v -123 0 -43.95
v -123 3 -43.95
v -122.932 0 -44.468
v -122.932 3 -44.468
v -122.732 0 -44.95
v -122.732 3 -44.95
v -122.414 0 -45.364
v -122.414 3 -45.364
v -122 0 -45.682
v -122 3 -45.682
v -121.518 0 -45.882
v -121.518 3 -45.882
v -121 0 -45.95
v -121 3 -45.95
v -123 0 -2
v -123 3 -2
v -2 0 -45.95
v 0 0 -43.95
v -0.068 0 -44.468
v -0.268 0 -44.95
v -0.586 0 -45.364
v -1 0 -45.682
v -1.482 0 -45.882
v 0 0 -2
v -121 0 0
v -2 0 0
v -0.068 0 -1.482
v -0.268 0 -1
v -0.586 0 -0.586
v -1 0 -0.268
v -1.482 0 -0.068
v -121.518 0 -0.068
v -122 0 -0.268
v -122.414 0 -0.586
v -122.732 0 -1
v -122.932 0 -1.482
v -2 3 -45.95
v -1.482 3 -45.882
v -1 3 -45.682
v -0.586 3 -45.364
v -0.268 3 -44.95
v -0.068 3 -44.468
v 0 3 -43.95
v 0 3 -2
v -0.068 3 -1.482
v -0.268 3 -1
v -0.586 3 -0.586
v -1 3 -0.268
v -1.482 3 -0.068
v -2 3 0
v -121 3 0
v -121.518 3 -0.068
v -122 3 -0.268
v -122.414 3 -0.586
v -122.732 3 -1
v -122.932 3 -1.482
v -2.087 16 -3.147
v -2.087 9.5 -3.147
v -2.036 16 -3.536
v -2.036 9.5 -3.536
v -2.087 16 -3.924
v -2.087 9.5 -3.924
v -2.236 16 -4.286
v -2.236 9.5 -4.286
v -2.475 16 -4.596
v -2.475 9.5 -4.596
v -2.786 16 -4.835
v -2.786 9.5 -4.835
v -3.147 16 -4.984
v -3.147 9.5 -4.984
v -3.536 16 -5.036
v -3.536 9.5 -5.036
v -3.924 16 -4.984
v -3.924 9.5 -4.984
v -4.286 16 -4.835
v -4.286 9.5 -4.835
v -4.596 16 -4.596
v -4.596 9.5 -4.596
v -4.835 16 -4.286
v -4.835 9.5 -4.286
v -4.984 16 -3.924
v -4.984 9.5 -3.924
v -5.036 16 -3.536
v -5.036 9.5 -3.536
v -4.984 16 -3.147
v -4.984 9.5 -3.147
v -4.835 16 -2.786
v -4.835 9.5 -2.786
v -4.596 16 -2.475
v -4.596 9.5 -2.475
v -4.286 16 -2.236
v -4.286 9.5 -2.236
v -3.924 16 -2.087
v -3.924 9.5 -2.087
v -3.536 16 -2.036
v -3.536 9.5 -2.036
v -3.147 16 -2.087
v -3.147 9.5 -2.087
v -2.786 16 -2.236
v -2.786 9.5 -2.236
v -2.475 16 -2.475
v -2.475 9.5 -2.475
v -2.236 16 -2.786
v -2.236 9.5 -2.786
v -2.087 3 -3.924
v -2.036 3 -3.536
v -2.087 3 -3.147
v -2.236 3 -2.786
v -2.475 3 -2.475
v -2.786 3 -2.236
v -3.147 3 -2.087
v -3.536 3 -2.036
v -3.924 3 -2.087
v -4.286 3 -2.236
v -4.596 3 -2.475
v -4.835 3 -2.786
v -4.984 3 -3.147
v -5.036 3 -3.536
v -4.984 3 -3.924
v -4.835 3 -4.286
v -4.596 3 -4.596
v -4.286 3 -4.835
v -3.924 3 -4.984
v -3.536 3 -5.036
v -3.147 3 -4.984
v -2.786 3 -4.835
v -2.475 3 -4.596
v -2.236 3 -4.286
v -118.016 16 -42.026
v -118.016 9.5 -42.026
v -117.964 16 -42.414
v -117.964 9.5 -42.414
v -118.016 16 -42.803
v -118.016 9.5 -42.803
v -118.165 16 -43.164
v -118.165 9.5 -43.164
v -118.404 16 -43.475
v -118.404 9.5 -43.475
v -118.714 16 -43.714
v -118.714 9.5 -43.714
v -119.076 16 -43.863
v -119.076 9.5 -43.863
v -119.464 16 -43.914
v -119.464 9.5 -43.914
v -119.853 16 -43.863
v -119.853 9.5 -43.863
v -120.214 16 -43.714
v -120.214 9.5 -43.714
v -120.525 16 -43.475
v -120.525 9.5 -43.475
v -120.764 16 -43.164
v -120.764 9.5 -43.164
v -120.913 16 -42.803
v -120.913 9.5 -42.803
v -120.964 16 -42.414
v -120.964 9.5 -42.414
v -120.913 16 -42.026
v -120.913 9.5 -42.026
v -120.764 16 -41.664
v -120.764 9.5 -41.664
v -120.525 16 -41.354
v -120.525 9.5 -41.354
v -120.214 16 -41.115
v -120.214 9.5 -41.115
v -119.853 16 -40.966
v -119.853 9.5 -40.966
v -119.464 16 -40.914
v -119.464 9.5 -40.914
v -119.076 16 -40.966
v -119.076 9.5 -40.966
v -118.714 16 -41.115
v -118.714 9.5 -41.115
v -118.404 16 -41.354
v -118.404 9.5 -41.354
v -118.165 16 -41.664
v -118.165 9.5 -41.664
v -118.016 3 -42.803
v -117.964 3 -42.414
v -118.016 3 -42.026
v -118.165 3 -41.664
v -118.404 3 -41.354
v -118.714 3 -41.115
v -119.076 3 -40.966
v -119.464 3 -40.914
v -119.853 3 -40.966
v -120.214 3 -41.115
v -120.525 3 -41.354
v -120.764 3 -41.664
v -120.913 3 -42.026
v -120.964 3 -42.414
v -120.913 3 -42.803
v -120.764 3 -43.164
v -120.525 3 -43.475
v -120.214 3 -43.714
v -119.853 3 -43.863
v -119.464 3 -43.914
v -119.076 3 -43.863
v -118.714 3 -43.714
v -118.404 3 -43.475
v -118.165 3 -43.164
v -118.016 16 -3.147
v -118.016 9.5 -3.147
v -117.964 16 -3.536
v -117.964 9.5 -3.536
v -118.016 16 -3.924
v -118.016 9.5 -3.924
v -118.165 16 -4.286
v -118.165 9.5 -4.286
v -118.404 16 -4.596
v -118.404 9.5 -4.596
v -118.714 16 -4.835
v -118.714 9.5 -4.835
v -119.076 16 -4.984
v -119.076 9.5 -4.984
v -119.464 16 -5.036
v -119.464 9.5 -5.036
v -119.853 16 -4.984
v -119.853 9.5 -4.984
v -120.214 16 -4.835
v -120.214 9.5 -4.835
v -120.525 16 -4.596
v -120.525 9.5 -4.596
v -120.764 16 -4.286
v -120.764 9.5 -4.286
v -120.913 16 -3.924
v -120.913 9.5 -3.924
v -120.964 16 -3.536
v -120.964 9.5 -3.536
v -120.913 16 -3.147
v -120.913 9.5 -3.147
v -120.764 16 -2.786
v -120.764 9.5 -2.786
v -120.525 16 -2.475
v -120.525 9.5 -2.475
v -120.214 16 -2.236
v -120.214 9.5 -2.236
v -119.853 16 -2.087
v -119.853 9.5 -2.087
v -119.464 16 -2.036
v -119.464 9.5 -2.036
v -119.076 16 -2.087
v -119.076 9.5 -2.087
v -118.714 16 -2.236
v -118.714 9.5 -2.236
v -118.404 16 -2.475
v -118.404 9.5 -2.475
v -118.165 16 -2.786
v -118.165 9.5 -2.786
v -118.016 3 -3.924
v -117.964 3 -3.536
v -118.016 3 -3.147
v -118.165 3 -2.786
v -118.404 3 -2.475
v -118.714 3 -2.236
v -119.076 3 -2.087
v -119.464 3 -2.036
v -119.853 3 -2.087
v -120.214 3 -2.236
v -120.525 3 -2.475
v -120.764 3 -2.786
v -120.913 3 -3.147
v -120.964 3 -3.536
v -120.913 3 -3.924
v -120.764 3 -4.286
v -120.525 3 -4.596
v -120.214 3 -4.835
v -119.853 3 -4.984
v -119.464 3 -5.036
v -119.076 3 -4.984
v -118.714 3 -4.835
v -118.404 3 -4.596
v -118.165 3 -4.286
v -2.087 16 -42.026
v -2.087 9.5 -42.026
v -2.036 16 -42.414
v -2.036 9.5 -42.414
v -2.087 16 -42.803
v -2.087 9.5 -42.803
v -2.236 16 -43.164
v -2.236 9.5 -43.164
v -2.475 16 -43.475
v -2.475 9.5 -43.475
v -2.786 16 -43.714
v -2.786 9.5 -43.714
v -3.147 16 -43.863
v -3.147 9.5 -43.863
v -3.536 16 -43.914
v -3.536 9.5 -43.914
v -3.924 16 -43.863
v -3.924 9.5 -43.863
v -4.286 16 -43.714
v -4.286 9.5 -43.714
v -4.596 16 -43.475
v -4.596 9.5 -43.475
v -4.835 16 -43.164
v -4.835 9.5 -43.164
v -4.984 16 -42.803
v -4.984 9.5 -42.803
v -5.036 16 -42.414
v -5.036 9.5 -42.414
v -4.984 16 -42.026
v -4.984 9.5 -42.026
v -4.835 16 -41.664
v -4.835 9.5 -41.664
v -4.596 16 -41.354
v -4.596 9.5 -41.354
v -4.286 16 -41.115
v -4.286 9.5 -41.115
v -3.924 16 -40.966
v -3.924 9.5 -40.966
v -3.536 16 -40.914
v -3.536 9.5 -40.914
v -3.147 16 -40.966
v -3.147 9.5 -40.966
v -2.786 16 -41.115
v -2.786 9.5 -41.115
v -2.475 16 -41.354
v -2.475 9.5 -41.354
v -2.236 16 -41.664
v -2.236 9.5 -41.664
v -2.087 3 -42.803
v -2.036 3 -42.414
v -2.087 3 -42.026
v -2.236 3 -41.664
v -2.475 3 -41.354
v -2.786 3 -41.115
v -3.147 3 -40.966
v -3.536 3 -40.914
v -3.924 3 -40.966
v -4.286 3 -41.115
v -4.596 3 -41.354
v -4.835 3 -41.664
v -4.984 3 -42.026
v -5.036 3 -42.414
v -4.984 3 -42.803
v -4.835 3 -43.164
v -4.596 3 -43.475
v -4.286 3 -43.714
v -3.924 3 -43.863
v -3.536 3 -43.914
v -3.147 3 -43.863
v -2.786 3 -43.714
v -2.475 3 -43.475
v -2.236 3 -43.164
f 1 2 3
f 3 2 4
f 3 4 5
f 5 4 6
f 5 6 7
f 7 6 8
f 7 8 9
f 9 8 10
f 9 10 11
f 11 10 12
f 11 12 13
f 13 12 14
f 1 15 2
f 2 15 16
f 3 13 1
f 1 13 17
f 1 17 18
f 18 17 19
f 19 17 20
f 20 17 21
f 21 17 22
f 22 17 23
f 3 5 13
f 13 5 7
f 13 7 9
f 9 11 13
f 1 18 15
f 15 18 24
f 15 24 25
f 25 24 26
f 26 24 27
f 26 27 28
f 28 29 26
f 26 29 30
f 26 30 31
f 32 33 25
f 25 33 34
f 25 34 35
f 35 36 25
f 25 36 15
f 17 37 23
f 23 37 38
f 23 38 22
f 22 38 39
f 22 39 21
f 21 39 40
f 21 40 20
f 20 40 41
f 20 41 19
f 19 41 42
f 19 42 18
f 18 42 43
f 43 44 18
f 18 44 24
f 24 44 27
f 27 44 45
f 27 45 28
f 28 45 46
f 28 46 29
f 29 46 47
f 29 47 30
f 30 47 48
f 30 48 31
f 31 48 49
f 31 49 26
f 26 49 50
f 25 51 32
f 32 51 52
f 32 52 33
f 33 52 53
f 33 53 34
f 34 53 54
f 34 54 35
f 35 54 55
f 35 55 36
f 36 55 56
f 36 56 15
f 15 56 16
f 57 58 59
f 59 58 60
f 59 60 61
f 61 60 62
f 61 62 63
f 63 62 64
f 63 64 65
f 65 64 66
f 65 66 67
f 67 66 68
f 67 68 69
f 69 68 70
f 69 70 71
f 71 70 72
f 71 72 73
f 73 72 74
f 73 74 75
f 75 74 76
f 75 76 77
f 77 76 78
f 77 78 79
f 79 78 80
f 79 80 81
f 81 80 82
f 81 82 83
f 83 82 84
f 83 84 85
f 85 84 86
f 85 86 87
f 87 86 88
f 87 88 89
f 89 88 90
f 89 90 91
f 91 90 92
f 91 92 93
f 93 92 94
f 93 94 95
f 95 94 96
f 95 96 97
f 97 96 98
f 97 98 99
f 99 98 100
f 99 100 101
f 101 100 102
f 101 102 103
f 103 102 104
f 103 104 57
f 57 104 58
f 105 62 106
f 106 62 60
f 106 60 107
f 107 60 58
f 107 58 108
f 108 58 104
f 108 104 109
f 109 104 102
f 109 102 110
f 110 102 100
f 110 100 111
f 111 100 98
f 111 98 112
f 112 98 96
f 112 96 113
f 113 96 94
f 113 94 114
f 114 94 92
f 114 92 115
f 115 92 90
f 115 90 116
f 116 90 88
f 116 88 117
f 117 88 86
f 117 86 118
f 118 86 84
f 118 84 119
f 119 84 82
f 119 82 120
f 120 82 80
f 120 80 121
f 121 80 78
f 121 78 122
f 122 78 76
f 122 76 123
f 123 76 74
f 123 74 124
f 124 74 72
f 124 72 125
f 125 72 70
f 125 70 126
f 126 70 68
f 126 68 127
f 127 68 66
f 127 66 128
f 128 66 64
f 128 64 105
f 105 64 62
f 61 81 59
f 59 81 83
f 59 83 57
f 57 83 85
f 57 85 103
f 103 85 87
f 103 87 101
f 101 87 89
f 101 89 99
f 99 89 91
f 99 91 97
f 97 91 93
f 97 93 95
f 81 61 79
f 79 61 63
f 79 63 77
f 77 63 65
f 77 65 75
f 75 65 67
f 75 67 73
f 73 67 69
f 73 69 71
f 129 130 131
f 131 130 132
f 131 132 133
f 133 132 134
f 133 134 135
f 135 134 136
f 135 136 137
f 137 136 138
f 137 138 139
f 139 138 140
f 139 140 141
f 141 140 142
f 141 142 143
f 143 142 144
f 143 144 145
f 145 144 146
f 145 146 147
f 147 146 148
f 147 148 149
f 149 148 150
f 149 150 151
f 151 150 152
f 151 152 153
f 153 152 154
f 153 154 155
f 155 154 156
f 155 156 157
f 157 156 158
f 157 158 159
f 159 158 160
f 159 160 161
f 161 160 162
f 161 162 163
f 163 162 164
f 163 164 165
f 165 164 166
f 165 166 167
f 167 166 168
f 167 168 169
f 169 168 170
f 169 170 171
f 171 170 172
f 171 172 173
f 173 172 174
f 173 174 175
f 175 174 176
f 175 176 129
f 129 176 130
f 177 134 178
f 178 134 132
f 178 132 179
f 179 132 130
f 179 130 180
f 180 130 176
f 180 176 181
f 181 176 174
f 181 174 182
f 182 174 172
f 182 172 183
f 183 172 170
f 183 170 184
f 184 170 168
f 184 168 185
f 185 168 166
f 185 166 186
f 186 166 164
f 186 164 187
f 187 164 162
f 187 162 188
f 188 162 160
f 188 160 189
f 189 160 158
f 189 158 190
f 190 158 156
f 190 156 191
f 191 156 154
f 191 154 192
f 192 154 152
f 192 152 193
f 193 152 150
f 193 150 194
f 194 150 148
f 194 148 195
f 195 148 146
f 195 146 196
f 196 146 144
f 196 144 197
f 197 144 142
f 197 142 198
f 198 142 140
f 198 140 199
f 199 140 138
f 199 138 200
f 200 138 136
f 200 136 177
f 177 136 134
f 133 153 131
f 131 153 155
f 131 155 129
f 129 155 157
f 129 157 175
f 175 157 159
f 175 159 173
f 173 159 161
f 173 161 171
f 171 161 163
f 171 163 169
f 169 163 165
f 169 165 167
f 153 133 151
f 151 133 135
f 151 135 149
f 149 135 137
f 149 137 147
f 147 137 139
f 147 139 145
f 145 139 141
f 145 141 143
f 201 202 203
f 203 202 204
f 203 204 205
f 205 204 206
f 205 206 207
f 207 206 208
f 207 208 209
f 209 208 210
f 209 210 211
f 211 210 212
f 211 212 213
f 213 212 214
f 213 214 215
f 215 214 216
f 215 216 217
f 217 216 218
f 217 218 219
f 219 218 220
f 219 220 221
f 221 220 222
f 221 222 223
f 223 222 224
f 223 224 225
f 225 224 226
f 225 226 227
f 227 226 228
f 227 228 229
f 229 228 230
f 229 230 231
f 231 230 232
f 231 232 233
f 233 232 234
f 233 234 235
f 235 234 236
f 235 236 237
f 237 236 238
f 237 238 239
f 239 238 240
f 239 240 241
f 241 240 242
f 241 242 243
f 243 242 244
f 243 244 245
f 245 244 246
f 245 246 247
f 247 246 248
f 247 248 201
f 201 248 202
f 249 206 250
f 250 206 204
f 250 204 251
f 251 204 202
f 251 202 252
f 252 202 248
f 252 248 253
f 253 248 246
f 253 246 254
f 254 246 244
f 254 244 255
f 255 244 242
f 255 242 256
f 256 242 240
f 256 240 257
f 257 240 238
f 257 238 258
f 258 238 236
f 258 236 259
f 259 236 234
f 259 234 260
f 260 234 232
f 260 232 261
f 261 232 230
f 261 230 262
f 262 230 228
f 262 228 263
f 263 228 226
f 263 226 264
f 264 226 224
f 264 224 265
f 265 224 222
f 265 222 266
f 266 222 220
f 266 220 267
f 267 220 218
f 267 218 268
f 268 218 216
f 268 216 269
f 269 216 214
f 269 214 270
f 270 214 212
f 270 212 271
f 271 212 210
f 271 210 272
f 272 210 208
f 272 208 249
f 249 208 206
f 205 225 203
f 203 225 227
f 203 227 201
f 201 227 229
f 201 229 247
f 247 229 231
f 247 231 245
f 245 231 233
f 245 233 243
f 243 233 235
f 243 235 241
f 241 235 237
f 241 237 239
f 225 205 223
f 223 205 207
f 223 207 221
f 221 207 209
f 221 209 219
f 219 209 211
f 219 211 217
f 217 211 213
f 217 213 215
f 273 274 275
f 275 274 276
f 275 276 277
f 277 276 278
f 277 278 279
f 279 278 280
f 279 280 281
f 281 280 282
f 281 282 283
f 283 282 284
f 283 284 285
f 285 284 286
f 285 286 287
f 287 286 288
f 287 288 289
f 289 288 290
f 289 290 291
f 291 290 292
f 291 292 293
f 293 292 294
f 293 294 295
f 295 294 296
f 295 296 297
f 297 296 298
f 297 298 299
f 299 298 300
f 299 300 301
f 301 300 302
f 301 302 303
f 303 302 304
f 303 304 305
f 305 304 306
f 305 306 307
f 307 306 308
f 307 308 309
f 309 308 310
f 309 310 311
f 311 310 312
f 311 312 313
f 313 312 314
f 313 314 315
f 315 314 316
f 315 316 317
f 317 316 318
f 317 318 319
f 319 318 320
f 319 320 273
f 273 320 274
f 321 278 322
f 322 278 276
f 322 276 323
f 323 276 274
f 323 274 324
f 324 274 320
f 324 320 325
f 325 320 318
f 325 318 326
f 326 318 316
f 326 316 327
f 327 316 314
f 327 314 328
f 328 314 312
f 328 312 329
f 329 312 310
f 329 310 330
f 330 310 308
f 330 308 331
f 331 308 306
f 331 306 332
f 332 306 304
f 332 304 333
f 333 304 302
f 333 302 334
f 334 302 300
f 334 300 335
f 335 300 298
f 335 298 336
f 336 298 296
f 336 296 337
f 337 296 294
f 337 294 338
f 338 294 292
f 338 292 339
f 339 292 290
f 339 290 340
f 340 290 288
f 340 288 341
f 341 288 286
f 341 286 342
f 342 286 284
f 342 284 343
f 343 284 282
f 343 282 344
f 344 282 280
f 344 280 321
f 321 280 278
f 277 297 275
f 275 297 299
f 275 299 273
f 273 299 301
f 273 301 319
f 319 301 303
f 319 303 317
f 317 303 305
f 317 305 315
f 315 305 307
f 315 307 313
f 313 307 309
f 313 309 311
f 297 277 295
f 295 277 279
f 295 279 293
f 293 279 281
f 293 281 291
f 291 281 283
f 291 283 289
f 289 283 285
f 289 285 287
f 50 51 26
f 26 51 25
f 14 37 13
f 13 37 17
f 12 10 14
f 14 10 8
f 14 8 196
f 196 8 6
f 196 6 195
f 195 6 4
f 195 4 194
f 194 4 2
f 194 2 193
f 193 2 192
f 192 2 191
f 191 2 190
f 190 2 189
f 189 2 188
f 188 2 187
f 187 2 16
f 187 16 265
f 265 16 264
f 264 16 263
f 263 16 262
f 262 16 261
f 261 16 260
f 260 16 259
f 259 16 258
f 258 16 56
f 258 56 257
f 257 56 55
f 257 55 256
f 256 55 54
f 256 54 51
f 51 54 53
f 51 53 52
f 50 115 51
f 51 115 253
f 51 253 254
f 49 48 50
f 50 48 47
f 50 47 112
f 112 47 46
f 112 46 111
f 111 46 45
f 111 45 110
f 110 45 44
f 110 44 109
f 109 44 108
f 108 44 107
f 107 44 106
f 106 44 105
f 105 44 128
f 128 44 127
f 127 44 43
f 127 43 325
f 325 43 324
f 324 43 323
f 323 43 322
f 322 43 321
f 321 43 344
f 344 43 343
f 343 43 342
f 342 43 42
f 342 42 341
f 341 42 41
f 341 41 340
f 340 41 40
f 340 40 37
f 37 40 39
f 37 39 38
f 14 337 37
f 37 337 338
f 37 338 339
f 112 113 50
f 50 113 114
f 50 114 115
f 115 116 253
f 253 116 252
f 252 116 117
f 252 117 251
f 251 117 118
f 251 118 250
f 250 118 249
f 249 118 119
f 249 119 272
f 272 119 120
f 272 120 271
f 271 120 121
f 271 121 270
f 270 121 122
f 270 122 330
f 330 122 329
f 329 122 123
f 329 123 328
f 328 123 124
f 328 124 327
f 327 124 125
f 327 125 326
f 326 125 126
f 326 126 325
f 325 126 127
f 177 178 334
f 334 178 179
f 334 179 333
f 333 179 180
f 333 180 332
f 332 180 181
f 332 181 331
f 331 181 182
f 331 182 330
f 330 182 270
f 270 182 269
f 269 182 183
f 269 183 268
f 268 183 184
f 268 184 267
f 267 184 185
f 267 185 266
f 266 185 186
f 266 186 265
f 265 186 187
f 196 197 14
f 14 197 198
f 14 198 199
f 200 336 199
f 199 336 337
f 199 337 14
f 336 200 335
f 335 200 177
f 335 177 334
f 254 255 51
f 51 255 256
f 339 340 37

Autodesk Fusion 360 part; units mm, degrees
sketch "Sketch1" plane through (0, 0, 0) normal (0, 1, 0) x (1, 0, 0)
  line L0 (0, 0) -> (-123, 0)
  line L1 (-123, 0) -> (-123, 45.95)
  line L2 (-123, 45.95) -> (0, 45.95)
  line L3 (0, 45.95) -> (0, 0)
  dimension "d1" = 123
  dimension "d2" = 45.95
extrude "Extrude1" add sketch "Sketch1" along normal blind 3
sketch "Sketch2" plane through (0, 3, 0) normal (0, 1, 0) x (-1, 0, 0)
  line L0 (0, -45.95) -> (123, -45.95)
  line L1 (123, -45.95) -> (123, 0)
  line L2 (123, 0) -> (0, 0)
  line L3 (0, 0) -> (0, -45.95)
  line L4 (0, 0) -> (5, 0) construction
  line L5 (123, 0) -> (128, 0) construction
  line L6 (123, -45.95) -> (128, -45.95) construction
  line L7 (0, -45.95) -> (5, -45.95) construction
  circle A0 centre (119.4645, -42.4145) radius 1.5
  circle A1 centre (3.5355, -42.4145) radius 1.5
  circle A2 centre (119.4645, -3.5355) radius 1.5
  circle A3 centre (3.5355, -3.5355) radius 1.5
  dimension "d5" = 5
  dimension "d8" = 5
  dimension "d10" = 5
  dimension "d11" = 5
  dimension "d13" = 3
  dimension "d14" = 3
  dimension "d15" = 3
  dimension "d16" = 3
extrude "Extrude2" add sketch "Sketch2" along normal blind 13 contours A0 | A1 | A2 | A3
fillet "Fillet1" radius 2 2 edges at (-123, 1.5, 0) (0, 1.5, 0)
fillet "Fillet2" radius 2 2 edges at (0, 1.5, -45.95) (-123, 1.5, -45.95)
